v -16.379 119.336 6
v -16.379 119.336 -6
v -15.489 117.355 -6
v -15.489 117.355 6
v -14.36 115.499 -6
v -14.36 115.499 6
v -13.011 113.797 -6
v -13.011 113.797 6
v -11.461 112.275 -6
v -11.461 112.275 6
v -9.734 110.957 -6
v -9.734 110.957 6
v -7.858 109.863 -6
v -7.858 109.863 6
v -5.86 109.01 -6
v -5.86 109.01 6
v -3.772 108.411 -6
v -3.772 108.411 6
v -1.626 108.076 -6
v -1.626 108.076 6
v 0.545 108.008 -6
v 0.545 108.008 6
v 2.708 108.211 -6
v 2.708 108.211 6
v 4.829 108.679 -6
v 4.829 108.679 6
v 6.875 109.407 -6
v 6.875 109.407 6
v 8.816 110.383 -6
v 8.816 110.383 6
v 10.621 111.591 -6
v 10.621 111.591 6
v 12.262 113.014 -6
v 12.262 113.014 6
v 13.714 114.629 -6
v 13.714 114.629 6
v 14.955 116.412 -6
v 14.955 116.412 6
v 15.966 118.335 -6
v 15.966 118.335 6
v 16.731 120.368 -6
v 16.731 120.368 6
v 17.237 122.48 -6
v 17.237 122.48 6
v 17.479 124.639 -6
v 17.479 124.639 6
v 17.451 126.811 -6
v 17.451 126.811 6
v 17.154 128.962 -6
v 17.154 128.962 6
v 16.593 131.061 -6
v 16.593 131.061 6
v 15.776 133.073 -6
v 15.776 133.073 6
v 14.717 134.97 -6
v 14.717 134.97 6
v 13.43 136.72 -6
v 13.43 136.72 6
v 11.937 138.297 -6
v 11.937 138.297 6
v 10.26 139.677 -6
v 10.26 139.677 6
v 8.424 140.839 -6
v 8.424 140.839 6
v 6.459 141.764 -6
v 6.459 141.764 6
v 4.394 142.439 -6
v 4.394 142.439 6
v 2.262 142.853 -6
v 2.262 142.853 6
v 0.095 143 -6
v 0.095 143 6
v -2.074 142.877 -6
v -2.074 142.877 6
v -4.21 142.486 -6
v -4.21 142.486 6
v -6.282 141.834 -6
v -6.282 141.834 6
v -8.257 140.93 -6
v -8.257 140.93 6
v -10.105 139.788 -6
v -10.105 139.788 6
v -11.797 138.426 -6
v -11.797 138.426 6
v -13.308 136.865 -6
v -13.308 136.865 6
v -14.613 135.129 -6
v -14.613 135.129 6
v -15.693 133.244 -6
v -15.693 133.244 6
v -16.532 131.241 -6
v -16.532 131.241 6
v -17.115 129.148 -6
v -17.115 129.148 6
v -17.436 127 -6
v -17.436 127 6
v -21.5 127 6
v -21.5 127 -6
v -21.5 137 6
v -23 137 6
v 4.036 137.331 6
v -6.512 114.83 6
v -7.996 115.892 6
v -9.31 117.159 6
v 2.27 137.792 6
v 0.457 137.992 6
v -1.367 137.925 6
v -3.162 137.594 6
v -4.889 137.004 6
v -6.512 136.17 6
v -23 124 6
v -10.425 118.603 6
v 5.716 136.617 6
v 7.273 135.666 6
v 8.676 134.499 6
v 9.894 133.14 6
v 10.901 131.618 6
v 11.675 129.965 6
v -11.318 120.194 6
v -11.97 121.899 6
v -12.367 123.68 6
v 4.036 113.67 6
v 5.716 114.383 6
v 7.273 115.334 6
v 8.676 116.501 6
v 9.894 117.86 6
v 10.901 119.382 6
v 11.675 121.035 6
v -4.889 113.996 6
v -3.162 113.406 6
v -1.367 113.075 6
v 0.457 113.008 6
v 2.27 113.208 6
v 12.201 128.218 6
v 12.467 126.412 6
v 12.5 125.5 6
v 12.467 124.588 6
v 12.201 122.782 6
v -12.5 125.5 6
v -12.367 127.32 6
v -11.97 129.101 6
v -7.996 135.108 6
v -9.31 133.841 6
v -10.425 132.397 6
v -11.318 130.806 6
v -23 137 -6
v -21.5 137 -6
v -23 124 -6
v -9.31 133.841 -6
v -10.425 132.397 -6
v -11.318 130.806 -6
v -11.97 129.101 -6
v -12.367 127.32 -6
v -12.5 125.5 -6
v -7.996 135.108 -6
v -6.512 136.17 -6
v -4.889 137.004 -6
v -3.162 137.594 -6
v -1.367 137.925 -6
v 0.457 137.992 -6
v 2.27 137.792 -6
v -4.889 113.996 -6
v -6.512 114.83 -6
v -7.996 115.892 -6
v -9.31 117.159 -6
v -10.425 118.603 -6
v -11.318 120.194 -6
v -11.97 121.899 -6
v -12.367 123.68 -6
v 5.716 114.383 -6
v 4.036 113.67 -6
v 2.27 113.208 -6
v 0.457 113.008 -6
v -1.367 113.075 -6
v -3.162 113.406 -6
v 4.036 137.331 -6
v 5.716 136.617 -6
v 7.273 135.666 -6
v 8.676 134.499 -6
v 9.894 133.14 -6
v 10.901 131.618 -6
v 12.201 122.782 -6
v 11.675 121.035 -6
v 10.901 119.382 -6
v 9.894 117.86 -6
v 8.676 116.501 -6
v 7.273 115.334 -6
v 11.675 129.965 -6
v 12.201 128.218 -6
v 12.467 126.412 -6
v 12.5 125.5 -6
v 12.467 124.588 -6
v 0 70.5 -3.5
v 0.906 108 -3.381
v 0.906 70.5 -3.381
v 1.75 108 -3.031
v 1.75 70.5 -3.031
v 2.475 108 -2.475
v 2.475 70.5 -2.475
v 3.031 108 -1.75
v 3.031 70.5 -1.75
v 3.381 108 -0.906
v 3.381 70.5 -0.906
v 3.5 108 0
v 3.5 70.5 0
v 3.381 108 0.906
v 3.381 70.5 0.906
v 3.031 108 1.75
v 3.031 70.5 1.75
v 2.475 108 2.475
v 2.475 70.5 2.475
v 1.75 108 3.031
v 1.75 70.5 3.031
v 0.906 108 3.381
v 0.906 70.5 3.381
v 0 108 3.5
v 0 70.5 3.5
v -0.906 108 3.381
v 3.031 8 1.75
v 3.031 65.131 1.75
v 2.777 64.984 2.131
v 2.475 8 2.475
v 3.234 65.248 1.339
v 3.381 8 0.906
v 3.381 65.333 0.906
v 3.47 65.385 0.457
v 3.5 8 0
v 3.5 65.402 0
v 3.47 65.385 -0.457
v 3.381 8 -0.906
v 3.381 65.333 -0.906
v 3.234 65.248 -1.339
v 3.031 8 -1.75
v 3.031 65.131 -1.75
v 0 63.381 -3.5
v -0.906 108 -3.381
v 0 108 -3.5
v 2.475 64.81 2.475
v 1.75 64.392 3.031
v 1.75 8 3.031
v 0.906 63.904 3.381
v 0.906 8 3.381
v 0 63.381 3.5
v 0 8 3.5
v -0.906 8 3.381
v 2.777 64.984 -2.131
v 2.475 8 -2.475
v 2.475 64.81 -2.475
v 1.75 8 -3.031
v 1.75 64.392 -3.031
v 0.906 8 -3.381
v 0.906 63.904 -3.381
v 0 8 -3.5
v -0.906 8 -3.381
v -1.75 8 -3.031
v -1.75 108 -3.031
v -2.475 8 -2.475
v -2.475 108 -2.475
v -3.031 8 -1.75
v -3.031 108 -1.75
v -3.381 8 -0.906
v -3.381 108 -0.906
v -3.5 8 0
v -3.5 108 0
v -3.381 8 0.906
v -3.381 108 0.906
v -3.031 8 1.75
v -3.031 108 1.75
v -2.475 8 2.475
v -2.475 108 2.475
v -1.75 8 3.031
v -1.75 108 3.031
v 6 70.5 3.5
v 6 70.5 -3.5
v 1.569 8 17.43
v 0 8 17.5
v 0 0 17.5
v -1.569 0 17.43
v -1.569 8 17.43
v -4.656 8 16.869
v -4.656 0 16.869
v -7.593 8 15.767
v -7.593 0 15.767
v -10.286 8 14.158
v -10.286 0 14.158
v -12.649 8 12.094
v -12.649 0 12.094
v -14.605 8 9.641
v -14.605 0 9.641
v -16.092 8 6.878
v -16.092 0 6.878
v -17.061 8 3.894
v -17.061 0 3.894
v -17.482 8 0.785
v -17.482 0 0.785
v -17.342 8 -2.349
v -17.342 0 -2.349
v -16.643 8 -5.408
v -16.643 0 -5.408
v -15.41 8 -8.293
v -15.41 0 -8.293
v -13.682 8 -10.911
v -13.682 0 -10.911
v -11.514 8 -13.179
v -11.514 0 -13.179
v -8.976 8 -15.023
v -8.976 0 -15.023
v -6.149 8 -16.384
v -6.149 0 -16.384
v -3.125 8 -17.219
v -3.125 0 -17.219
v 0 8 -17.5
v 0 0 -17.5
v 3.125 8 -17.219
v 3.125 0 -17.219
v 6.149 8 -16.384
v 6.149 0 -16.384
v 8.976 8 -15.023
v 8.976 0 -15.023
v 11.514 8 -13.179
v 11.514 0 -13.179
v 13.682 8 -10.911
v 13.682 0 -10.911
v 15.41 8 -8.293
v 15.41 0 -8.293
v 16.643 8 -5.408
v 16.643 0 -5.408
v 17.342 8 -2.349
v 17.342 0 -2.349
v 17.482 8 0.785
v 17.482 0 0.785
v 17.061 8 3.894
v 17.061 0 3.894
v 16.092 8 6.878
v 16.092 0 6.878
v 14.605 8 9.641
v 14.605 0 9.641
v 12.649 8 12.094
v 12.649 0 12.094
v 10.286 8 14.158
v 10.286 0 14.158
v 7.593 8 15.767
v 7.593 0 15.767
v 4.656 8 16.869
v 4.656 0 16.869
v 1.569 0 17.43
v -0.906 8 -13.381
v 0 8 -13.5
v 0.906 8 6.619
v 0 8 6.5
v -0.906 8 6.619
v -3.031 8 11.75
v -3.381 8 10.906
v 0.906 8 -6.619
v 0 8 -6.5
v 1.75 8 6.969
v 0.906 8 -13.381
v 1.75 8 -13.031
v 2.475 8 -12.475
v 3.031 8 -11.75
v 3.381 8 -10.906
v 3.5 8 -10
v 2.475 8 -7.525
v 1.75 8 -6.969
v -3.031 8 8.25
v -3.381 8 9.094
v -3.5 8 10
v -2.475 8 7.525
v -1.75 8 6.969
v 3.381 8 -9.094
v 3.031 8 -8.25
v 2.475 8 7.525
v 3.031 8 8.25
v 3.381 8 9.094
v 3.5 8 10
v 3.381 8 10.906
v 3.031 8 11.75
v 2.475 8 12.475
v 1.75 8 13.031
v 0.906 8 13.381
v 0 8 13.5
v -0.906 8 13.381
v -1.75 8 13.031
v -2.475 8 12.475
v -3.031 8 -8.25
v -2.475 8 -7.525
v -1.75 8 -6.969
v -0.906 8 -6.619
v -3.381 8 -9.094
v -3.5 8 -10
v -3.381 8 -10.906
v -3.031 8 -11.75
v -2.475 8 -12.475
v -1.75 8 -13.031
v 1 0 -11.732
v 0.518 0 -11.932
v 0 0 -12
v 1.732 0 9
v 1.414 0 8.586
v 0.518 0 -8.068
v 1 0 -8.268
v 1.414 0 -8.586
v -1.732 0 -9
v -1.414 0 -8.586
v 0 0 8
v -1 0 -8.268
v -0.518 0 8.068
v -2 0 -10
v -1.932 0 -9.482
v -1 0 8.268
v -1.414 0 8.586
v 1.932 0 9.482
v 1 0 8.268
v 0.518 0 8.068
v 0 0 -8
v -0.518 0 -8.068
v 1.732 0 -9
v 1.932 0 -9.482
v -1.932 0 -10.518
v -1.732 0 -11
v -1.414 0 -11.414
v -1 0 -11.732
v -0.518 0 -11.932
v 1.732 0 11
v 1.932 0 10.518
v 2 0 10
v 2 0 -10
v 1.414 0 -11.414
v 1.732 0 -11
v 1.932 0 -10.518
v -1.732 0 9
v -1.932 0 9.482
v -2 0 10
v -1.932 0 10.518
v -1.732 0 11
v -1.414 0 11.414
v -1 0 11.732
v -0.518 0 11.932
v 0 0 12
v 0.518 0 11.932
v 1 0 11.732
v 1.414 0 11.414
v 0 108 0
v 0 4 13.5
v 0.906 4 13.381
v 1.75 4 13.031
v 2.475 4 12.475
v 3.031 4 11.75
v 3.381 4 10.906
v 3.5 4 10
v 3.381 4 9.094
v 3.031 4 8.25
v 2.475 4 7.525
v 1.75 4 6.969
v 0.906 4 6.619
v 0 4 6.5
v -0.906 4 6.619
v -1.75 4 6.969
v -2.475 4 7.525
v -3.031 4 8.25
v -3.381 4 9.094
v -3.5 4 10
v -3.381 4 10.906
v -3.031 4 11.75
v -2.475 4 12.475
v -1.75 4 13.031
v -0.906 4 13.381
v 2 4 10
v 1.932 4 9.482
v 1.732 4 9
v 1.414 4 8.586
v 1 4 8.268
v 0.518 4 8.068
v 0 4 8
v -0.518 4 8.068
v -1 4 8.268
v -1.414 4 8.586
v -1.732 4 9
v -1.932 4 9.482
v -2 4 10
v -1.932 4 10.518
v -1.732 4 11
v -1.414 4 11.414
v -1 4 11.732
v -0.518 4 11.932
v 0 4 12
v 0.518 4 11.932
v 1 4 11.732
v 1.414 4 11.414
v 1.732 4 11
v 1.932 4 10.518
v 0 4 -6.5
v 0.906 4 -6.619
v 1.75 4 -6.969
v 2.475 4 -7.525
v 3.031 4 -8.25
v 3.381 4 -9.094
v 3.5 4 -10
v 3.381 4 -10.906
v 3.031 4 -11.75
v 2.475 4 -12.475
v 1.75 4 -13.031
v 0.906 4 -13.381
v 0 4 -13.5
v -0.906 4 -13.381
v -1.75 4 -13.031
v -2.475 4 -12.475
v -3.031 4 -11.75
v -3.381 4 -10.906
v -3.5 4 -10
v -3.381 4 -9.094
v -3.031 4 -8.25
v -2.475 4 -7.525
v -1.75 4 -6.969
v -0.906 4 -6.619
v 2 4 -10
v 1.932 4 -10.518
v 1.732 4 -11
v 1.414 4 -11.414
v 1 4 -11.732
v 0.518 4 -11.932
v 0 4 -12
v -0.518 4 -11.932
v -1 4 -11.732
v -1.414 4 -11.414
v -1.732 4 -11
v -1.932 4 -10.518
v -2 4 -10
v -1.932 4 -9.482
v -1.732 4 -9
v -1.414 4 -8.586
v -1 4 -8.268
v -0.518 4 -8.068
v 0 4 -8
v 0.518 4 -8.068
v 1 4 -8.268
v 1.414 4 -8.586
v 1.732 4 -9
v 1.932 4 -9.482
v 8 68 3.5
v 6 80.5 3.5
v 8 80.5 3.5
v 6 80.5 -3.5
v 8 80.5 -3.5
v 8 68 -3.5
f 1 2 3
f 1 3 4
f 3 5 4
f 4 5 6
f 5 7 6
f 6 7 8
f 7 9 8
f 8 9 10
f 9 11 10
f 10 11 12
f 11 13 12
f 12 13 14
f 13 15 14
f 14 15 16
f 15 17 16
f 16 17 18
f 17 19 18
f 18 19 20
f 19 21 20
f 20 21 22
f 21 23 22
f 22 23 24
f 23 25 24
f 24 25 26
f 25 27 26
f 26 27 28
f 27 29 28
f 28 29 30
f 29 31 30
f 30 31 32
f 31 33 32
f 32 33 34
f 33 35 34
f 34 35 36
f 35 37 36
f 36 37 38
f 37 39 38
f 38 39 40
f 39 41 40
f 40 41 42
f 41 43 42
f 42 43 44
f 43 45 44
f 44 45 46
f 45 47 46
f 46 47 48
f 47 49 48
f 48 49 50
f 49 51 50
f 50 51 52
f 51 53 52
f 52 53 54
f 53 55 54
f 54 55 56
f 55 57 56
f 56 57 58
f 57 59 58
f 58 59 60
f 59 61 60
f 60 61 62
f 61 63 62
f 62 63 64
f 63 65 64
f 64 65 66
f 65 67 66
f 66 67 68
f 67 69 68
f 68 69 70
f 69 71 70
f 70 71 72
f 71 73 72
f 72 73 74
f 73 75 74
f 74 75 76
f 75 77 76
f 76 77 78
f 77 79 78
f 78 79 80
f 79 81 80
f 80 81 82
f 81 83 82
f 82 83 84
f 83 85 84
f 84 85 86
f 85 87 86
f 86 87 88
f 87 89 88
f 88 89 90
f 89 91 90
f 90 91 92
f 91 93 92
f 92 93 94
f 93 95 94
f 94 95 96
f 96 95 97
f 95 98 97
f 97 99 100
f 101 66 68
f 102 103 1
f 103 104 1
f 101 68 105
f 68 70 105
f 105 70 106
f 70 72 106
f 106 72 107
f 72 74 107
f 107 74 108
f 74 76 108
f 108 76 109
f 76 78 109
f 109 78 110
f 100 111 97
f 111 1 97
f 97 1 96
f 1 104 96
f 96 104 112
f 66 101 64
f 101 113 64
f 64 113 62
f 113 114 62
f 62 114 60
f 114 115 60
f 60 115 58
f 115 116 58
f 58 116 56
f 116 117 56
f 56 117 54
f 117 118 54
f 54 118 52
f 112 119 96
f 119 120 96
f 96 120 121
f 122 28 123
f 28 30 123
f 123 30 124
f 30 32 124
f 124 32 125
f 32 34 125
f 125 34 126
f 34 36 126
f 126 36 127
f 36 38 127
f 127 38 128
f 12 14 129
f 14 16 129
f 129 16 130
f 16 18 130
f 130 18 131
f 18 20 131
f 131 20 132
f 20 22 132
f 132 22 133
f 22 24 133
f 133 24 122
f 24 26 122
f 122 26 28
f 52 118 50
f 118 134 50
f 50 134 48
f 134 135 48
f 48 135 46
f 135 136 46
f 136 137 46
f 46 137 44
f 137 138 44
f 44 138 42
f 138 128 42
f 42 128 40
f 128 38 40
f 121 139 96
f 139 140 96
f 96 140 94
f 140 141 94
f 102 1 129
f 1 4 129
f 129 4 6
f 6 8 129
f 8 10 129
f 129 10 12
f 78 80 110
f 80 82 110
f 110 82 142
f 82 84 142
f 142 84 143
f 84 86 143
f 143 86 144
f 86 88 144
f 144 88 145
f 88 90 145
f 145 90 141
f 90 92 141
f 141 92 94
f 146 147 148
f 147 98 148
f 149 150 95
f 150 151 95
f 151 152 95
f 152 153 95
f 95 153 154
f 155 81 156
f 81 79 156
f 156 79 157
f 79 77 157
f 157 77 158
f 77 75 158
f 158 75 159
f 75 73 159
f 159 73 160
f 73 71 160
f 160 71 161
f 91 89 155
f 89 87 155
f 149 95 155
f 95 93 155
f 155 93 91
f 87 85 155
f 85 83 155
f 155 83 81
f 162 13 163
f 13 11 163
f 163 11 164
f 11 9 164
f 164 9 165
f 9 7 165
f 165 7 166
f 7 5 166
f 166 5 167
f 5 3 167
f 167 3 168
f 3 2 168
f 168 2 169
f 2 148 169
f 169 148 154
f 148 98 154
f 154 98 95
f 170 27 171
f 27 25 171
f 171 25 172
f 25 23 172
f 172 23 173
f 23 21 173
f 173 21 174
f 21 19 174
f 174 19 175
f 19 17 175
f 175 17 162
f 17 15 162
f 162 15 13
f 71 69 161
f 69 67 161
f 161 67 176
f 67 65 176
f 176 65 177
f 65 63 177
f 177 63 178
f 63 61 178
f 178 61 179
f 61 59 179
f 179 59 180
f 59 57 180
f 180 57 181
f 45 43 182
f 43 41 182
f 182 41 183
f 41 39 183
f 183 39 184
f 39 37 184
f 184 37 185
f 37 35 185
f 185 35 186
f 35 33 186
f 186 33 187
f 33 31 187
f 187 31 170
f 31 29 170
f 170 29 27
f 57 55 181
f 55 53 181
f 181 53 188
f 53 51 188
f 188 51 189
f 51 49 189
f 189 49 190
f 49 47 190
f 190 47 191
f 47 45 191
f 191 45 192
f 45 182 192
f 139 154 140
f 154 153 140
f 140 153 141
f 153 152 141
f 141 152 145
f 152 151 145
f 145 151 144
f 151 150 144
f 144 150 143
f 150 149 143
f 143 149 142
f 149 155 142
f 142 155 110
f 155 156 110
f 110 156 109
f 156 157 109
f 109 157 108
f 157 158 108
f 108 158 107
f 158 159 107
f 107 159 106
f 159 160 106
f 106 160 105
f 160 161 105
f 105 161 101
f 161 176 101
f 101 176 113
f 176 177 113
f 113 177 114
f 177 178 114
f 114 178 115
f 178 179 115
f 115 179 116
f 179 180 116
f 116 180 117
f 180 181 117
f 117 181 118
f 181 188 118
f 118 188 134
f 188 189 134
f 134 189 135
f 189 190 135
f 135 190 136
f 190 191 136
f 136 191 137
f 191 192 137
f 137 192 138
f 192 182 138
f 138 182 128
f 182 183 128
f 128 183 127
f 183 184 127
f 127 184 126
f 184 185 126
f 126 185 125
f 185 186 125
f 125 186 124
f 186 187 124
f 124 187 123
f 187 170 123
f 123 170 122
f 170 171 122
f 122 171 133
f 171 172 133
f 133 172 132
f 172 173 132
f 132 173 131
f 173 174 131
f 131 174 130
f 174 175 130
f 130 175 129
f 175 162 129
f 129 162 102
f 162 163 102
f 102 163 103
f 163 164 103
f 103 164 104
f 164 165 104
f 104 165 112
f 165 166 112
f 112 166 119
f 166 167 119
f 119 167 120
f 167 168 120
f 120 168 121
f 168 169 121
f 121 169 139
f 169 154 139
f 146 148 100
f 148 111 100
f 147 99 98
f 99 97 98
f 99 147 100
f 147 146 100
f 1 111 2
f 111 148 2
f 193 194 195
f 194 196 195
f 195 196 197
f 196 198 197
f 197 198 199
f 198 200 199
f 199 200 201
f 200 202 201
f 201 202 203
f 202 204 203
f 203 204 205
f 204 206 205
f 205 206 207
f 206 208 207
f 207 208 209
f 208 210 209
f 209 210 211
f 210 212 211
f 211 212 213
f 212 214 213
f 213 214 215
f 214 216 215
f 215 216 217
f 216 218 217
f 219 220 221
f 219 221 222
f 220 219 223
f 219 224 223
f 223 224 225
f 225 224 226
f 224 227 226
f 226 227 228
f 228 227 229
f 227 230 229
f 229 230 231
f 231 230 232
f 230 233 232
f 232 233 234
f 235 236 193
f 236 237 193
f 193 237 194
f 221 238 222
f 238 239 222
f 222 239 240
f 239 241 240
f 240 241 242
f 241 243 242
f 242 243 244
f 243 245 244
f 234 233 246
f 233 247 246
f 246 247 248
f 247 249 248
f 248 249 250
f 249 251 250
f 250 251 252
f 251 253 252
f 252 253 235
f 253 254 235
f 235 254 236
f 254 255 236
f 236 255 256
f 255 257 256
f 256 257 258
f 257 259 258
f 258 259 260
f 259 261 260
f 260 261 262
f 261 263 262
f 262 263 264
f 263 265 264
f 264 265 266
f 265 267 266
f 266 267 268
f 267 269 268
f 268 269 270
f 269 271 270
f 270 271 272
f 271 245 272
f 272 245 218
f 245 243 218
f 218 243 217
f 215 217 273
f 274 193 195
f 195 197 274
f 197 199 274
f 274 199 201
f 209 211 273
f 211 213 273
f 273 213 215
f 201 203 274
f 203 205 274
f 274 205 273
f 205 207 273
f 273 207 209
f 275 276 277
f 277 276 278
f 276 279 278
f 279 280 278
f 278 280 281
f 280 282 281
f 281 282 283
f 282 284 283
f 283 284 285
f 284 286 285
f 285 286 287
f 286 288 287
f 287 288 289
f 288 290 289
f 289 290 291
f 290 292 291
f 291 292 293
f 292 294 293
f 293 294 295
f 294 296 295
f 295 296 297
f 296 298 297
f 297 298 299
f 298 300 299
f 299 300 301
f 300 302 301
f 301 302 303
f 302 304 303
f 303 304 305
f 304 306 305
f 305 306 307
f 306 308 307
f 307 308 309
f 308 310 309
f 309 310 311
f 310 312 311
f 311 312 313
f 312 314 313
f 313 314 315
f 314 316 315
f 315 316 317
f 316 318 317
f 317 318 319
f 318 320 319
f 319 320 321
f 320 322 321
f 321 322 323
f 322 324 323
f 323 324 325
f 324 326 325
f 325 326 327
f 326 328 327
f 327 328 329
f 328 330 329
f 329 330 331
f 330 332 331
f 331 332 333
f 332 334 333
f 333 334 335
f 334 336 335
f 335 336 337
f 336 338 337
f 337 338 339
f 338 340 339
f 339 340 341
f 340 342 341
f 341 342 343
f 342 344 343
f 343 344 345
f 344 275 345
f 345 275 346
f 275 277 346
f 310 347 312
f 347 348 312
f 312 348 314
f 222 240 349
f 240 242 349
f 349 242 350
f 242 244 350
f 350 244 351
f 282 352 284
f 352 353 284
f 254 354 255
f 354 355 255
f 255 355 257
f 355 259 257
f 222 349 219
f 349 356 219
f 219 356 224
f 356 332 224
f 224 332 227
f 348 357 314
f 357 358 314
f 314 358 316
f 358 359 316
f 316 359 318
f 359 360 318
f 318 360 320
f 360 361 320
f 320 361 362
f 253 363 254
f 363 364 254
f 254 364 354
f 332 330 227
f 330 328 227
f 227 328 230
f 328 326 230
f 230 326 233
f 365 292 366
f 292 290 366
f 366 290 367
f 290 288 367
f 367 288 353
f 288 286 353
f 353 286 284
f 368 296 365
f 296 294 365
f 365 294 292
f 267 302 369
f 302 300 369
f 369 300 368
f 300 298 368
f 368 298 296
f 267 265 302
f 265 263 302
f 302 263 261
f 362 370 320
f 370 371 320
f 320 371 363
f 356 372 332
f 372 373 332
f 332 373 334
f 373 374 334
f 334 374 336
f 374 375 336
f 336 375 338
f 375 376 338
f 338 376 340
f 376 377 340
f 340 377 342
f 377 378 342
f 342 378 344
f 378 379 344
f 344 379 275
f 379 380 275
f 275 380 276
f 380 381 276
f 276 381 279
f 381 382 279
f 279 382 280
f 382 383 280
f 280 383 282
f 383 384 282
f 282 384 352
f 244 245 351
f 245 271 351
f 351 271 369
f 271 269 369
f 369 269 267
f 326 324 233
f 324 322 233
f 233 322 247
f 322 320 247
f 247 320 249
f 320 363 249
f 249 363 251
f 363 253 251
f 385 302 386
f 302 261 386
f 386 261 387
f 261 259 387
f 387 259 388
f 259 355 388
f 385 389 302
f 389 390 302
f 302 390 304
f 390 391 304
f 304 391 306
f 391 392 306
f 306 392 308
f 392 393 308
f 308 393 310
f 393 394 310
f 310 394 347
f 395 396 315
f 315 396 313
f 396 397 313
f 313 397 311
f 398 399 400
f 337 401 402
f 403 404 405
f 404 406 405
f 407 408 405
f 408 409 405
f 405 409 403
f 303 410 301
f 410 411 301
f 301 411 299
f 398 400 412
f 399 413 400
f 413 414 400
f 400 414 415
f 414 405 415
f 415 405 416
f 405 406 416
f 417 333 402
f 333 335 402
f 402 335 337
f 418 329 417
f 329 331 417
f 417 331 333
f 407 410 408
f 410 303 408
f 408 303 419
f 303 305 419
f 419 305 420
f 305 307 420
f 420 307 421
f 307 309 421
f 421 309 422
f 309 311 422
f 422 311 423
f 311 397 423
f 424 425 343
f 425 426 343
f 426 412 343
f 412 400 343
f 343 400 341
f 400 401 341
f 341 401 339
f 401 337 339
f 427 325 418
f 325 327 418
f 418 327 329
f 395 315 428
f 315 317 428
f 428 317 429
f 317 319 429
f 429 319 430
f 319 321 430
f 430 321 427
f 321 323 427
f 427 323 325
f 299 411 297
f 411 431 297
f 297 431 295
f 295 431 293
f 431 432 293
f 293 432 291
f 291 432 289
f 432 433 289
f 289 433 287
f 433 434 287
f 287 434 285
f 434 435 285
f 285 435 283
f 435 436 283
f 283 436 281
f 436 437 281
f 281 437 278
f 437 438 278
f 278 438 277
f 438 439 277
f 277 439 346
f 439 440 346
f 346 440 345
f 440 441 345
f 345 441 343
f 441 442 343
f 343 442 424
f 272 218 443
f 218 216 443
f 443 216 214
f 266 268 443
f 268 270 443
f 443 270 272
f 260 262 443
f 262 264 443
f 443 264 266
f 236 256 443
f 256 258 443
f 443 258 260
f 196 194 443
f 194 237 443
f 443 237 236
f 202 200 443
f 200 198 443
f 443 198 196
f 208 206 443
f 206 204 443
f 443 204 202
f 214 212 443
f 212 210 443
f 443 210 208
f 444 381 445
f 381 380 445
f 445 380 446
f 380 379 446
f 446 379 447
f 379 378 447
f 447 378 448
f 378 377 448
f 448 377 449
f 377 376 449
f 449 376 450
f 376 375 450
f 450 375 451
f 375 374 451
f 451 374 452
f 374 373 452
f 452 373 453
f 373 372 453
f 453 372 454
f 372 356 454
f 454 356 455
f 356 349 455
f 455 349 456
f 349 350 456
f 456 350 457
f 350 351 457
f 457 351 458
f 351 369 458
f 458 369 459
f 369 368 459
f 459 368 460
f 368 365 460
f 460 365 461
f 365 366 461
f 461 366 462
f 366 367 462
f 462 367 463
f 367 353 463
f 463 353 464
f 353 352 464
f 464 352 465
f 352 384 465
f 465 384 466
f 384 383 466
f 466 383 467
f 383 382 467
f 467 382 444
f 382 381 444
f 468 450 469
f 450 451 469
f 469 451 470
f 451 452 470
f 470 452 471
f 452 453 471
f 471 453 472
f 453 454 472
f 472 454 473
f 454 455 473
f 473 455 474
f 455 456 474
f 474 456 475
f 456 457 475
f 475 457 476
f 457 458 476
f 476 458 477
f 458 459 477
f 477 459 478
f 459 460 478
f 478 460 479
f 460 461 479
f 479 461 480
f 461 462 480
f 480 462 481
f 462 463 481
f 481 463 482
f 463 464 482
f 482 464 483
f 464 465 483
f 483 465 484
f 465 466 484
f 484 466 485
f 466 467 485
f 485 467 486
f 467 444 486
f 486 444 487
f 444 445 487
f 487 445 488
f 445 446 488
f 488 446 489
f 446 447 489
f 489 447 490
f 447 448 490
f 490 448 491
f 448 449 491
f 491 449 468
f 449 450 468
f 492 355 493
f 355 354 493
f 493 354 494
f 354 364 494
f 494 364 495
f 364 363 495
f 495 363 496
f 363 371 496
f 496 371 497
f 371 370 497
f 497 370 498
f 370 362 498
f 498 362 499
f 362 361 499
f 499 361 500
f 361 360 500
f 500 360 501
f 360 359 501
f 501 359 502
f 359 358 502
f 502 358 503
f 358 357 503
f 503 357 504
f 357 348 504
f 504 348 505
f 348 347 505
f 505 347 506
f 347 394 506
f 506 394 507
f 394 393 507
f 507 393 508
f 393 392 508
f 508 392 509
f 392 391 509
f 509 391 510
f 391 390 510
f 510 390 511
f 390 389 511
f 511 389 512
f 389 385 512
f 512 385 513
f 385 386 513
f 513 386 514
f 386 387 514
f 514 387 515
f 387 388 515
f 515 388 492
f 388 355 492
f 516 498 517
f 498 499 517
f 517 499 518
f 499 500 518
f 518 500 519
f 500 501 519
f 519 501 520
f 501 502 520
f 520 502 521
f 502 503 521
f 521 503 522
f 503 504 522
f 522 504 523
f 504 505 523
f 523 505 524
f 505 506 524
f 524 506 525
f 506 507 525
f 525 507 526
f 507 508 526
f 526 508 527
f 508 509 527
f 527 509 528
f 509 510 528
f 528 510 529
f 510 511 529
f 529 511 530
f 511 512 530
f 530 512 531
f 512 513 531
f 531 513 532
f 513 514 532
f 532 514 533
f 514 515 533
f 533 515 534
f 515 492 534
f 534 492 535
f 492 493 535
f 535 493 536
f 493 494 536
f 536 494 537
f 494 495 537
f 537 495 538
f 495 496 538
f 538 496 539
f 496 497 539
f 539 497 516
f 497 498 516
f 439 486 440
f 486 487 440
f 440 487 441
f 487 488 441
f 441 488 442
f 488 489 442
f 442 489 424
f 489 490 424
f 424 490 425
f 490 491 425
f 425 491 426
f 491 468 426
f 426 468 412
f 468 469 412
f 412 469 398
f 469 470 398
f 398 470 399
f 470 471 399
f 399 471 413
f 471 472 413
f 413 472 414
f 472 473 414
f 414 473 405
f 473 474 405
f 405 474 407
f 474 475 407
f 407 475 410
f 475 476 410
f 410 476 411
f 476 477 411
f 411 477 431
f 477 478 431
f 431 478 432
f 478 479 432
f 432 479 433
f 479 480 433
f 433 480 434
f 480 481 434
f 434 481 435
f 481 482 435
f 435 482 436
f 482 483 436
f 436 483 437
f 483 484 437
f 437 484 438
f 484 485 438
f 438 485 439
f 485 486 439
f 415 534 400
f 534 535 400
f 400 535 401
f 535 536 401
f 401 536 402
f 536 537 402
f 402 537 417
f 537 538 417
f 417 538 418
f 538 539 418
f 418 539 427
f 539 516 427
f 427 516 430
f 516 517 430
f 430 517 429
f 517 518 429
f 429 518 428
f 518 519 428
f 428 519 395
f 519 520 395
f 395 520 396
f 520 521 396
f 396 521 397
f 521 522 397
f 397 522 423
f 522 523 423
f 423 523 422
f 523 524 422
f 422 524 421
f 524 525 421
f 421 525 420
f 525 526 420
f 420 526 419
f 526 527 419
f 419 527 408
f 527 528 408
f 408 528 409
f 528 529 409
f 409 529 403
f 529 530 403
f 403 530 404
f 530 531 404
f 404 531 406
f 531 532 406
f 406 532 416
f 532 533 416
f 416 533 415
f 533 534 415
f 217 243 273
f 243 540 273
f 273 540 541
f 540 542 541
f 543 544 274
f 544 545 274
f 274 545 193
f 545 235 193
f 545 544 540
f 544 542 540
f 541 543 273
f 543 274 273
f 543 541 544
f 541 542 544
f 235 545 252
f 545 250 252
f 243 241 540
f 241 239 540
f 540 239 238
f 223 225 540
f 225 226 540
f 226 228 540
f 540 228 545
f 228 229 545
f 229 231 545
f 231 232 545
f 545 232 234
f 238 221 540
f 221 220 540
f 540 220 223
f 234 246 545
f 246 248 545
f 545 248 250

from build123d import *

# Parameters (mm, degrees)
ESBO_O1_R                = 17.5
RESSALTO_EXTRUS_O1_DEPTH = 8
ESBO_O2_R                = 3.5
RESSALTO_EXTRUS_O2_DEPTH = 100
ESBO_O3_R                = 3.5
CORTE_EXTRUS_O1_DEPTH    = 4
ESBO_O4_R                = 2
CORTE_EXTRUS_O2_DEPTH    = 4
ESBO_O5_R                = 17.5
ESBO_O5_R_2              = 12.5
RESSALTO_EXTRUS_O3_DEPTH = 6
ESBO_O8_W                = 7
ESBO_O8_H                = 2.5
RESSALTO_EXTRUS_O4_DEPTH = 8
ESBO_O9_W                = 2
ESBO_O9_H                = 7
RESSALTO_EXTRUS_O5_DEPTH = 10
RESSALTO_EXTRUS_O6_DEPTH = 8
ESBO_O15_W               = 1.5
ESBO_O15_H               = 12
RESSALTO_EXTRUS_O7_DEPTH = 10
RESSALTO_EXTRUS_O8_DEPTH = 6
RESSALTO_EXTRUS_O9_DEPTH = 3.5


with BuildPart() as part:
    # Esboço1 → Ressalto-extrusão1 (new body)
    with BuildSketch(Plane(origin=(0, 0, 0), x_dir=(1, 0, 0), z_dir=(0, 1, 0))):
        with Locations(Location((0, 0, 0), (0, 0, 270))):
            Circle(ESBO_O1_R)
    extrude(amount=RESSALTO_EXTRUS_O1_DEPTH)

    # Esboço2 → Ressalto-extrusão2 (add)
    with BuildSketch(Plane(origin=(0, 8, 0), x_dir=(1, 0, 0), z_dir=(0, 1, 0))):
        with Locations(Location((0, 0, 0), (0, 0, 270))):
            Circle(ESBO_O2_R)
    extrude(amount=RESSALTO_EXTRUS_O2_DEPTH)

    # Esboço3 → Corte-extrusão1 (cut)
    with BuildSketch(Plane(origin=(0, 8, 0), x_dir=(1, 0, 0), z_dir=(0, 1, 0))):
        with Locations(Location((0, 10, 0), (0, 0, 270))):
            Circle(ESBO_O3_R)
        with Locations(Location((0, -10, 0), (0, 0, 270))):
            Circle(ESBO_O3_R)
    extrude(amount=-CORTE_EXTRUS_O1_DEPTH, mode=Mode.SUBTRACT)

    # Esboço4 → Corte-extrusão2 (cut)
    with BuildSketch(Plane(origin=(0, 4, 0), x_dir=(1, 0, 0), z_dir=(0, 1, 0))):
        with Locations(Location((0, 10, 0), (0, 0, 270))):
            Circle(ESBO_O4_R)
        with Locations(Location((0, -10, 0), (0, 0, 270))):
            Circle(ESBO_O4_R)
    extrude(amount=-CORTE_EXTRUS_O2_DEPTH, mode=Mode.SUBTRACT)

    # Esboço8 → Ressalto-extrusão4 (add)
    with BuildSketch(Plane(origin=(0, 0, 0), x_dir=(0, 0, -1), z_dir=(1, 0, 0))):
        with Locations((0, 69.25)):
            Rectangle(ESBO_O8_W, ESBO_O8_H)
    extrude(amount=RESSALTO_EXTRUS_O4_DEPTH)

    # Esboço9 → Ressalto-extrusão5 (add)
    with BuildSketch(Plane(origin=(0, 70.5, 0), x_dir=(1, 0, 0), z_dir=(0, 1, 0))):
        with Locations((7, 0)):
            Rectangle(ESBO_O9_W, ESBO_O9_H)
    extrude(amount=RESSALTO_EXTRUS_O5_DEPTH)

    # Esboço17 → Ressalto-extrusão9 (add, symmetric)
    with BuildSketch(Plane.XY):
        Polygon((8, 68), (0, 63.381197846), (0, 68), align=None)
    extrude(amount=RESSALTO_EXTRUS_O9_DEPTH, both=True)


with BuildPart() as body_2:
    # Esboço5 → Ressalto-extrusão3 (new, symmetric)
    with BuildSketch(Plane.XY):
        with Locations((0, 125.5)):
            Circle(ESBO_O5_R)
        with Locations((0, 125.5)):
            Circle(ESBO_O5_R_2, mode=Mode.SUBTRACT)
    extrude(amount=RESSALTO_EXTRUS_O3_DEPTH, both=True)

    # Esboço14 → Ressalto-extrusão6 (add)
    with BuildSketch(Plane.ZY.offset(15)):
        Polygon((6, 125.5), (6, 127), (-6, 127), (-6, 124), (6, 124), align=None)
    extrude(amount=RESSALTO_EXTRUS_O6_DEPTH)

    # Esboço15 → Ressalto-extrusão7 (add)
    with BuildSketch(Plane(origin=(0, 127, 0), x_dir=(1, 0, 0), z_dir=(0, 1, 0))):
        with Locations((-22.25, 0)):
            Rectangle(ESBO_O15_W, ESBO_O15_H)
    extrude(amount=RESSALTO_EXTRUS_O7_DEPTH)

    # Esboço16 → Ressalto-extrusão8 (add, symmetric)
    with BuildSketch(Plane.XY):
        Polygon((-23, 124), (-16.378541302, 119.336122584), (-17.435595774, 124), align=None)
    extrude(amount=RESSALTO_EXTRUS_O8_DEPTH, both=True)


solid = Compound([part.part, body_2.part])
